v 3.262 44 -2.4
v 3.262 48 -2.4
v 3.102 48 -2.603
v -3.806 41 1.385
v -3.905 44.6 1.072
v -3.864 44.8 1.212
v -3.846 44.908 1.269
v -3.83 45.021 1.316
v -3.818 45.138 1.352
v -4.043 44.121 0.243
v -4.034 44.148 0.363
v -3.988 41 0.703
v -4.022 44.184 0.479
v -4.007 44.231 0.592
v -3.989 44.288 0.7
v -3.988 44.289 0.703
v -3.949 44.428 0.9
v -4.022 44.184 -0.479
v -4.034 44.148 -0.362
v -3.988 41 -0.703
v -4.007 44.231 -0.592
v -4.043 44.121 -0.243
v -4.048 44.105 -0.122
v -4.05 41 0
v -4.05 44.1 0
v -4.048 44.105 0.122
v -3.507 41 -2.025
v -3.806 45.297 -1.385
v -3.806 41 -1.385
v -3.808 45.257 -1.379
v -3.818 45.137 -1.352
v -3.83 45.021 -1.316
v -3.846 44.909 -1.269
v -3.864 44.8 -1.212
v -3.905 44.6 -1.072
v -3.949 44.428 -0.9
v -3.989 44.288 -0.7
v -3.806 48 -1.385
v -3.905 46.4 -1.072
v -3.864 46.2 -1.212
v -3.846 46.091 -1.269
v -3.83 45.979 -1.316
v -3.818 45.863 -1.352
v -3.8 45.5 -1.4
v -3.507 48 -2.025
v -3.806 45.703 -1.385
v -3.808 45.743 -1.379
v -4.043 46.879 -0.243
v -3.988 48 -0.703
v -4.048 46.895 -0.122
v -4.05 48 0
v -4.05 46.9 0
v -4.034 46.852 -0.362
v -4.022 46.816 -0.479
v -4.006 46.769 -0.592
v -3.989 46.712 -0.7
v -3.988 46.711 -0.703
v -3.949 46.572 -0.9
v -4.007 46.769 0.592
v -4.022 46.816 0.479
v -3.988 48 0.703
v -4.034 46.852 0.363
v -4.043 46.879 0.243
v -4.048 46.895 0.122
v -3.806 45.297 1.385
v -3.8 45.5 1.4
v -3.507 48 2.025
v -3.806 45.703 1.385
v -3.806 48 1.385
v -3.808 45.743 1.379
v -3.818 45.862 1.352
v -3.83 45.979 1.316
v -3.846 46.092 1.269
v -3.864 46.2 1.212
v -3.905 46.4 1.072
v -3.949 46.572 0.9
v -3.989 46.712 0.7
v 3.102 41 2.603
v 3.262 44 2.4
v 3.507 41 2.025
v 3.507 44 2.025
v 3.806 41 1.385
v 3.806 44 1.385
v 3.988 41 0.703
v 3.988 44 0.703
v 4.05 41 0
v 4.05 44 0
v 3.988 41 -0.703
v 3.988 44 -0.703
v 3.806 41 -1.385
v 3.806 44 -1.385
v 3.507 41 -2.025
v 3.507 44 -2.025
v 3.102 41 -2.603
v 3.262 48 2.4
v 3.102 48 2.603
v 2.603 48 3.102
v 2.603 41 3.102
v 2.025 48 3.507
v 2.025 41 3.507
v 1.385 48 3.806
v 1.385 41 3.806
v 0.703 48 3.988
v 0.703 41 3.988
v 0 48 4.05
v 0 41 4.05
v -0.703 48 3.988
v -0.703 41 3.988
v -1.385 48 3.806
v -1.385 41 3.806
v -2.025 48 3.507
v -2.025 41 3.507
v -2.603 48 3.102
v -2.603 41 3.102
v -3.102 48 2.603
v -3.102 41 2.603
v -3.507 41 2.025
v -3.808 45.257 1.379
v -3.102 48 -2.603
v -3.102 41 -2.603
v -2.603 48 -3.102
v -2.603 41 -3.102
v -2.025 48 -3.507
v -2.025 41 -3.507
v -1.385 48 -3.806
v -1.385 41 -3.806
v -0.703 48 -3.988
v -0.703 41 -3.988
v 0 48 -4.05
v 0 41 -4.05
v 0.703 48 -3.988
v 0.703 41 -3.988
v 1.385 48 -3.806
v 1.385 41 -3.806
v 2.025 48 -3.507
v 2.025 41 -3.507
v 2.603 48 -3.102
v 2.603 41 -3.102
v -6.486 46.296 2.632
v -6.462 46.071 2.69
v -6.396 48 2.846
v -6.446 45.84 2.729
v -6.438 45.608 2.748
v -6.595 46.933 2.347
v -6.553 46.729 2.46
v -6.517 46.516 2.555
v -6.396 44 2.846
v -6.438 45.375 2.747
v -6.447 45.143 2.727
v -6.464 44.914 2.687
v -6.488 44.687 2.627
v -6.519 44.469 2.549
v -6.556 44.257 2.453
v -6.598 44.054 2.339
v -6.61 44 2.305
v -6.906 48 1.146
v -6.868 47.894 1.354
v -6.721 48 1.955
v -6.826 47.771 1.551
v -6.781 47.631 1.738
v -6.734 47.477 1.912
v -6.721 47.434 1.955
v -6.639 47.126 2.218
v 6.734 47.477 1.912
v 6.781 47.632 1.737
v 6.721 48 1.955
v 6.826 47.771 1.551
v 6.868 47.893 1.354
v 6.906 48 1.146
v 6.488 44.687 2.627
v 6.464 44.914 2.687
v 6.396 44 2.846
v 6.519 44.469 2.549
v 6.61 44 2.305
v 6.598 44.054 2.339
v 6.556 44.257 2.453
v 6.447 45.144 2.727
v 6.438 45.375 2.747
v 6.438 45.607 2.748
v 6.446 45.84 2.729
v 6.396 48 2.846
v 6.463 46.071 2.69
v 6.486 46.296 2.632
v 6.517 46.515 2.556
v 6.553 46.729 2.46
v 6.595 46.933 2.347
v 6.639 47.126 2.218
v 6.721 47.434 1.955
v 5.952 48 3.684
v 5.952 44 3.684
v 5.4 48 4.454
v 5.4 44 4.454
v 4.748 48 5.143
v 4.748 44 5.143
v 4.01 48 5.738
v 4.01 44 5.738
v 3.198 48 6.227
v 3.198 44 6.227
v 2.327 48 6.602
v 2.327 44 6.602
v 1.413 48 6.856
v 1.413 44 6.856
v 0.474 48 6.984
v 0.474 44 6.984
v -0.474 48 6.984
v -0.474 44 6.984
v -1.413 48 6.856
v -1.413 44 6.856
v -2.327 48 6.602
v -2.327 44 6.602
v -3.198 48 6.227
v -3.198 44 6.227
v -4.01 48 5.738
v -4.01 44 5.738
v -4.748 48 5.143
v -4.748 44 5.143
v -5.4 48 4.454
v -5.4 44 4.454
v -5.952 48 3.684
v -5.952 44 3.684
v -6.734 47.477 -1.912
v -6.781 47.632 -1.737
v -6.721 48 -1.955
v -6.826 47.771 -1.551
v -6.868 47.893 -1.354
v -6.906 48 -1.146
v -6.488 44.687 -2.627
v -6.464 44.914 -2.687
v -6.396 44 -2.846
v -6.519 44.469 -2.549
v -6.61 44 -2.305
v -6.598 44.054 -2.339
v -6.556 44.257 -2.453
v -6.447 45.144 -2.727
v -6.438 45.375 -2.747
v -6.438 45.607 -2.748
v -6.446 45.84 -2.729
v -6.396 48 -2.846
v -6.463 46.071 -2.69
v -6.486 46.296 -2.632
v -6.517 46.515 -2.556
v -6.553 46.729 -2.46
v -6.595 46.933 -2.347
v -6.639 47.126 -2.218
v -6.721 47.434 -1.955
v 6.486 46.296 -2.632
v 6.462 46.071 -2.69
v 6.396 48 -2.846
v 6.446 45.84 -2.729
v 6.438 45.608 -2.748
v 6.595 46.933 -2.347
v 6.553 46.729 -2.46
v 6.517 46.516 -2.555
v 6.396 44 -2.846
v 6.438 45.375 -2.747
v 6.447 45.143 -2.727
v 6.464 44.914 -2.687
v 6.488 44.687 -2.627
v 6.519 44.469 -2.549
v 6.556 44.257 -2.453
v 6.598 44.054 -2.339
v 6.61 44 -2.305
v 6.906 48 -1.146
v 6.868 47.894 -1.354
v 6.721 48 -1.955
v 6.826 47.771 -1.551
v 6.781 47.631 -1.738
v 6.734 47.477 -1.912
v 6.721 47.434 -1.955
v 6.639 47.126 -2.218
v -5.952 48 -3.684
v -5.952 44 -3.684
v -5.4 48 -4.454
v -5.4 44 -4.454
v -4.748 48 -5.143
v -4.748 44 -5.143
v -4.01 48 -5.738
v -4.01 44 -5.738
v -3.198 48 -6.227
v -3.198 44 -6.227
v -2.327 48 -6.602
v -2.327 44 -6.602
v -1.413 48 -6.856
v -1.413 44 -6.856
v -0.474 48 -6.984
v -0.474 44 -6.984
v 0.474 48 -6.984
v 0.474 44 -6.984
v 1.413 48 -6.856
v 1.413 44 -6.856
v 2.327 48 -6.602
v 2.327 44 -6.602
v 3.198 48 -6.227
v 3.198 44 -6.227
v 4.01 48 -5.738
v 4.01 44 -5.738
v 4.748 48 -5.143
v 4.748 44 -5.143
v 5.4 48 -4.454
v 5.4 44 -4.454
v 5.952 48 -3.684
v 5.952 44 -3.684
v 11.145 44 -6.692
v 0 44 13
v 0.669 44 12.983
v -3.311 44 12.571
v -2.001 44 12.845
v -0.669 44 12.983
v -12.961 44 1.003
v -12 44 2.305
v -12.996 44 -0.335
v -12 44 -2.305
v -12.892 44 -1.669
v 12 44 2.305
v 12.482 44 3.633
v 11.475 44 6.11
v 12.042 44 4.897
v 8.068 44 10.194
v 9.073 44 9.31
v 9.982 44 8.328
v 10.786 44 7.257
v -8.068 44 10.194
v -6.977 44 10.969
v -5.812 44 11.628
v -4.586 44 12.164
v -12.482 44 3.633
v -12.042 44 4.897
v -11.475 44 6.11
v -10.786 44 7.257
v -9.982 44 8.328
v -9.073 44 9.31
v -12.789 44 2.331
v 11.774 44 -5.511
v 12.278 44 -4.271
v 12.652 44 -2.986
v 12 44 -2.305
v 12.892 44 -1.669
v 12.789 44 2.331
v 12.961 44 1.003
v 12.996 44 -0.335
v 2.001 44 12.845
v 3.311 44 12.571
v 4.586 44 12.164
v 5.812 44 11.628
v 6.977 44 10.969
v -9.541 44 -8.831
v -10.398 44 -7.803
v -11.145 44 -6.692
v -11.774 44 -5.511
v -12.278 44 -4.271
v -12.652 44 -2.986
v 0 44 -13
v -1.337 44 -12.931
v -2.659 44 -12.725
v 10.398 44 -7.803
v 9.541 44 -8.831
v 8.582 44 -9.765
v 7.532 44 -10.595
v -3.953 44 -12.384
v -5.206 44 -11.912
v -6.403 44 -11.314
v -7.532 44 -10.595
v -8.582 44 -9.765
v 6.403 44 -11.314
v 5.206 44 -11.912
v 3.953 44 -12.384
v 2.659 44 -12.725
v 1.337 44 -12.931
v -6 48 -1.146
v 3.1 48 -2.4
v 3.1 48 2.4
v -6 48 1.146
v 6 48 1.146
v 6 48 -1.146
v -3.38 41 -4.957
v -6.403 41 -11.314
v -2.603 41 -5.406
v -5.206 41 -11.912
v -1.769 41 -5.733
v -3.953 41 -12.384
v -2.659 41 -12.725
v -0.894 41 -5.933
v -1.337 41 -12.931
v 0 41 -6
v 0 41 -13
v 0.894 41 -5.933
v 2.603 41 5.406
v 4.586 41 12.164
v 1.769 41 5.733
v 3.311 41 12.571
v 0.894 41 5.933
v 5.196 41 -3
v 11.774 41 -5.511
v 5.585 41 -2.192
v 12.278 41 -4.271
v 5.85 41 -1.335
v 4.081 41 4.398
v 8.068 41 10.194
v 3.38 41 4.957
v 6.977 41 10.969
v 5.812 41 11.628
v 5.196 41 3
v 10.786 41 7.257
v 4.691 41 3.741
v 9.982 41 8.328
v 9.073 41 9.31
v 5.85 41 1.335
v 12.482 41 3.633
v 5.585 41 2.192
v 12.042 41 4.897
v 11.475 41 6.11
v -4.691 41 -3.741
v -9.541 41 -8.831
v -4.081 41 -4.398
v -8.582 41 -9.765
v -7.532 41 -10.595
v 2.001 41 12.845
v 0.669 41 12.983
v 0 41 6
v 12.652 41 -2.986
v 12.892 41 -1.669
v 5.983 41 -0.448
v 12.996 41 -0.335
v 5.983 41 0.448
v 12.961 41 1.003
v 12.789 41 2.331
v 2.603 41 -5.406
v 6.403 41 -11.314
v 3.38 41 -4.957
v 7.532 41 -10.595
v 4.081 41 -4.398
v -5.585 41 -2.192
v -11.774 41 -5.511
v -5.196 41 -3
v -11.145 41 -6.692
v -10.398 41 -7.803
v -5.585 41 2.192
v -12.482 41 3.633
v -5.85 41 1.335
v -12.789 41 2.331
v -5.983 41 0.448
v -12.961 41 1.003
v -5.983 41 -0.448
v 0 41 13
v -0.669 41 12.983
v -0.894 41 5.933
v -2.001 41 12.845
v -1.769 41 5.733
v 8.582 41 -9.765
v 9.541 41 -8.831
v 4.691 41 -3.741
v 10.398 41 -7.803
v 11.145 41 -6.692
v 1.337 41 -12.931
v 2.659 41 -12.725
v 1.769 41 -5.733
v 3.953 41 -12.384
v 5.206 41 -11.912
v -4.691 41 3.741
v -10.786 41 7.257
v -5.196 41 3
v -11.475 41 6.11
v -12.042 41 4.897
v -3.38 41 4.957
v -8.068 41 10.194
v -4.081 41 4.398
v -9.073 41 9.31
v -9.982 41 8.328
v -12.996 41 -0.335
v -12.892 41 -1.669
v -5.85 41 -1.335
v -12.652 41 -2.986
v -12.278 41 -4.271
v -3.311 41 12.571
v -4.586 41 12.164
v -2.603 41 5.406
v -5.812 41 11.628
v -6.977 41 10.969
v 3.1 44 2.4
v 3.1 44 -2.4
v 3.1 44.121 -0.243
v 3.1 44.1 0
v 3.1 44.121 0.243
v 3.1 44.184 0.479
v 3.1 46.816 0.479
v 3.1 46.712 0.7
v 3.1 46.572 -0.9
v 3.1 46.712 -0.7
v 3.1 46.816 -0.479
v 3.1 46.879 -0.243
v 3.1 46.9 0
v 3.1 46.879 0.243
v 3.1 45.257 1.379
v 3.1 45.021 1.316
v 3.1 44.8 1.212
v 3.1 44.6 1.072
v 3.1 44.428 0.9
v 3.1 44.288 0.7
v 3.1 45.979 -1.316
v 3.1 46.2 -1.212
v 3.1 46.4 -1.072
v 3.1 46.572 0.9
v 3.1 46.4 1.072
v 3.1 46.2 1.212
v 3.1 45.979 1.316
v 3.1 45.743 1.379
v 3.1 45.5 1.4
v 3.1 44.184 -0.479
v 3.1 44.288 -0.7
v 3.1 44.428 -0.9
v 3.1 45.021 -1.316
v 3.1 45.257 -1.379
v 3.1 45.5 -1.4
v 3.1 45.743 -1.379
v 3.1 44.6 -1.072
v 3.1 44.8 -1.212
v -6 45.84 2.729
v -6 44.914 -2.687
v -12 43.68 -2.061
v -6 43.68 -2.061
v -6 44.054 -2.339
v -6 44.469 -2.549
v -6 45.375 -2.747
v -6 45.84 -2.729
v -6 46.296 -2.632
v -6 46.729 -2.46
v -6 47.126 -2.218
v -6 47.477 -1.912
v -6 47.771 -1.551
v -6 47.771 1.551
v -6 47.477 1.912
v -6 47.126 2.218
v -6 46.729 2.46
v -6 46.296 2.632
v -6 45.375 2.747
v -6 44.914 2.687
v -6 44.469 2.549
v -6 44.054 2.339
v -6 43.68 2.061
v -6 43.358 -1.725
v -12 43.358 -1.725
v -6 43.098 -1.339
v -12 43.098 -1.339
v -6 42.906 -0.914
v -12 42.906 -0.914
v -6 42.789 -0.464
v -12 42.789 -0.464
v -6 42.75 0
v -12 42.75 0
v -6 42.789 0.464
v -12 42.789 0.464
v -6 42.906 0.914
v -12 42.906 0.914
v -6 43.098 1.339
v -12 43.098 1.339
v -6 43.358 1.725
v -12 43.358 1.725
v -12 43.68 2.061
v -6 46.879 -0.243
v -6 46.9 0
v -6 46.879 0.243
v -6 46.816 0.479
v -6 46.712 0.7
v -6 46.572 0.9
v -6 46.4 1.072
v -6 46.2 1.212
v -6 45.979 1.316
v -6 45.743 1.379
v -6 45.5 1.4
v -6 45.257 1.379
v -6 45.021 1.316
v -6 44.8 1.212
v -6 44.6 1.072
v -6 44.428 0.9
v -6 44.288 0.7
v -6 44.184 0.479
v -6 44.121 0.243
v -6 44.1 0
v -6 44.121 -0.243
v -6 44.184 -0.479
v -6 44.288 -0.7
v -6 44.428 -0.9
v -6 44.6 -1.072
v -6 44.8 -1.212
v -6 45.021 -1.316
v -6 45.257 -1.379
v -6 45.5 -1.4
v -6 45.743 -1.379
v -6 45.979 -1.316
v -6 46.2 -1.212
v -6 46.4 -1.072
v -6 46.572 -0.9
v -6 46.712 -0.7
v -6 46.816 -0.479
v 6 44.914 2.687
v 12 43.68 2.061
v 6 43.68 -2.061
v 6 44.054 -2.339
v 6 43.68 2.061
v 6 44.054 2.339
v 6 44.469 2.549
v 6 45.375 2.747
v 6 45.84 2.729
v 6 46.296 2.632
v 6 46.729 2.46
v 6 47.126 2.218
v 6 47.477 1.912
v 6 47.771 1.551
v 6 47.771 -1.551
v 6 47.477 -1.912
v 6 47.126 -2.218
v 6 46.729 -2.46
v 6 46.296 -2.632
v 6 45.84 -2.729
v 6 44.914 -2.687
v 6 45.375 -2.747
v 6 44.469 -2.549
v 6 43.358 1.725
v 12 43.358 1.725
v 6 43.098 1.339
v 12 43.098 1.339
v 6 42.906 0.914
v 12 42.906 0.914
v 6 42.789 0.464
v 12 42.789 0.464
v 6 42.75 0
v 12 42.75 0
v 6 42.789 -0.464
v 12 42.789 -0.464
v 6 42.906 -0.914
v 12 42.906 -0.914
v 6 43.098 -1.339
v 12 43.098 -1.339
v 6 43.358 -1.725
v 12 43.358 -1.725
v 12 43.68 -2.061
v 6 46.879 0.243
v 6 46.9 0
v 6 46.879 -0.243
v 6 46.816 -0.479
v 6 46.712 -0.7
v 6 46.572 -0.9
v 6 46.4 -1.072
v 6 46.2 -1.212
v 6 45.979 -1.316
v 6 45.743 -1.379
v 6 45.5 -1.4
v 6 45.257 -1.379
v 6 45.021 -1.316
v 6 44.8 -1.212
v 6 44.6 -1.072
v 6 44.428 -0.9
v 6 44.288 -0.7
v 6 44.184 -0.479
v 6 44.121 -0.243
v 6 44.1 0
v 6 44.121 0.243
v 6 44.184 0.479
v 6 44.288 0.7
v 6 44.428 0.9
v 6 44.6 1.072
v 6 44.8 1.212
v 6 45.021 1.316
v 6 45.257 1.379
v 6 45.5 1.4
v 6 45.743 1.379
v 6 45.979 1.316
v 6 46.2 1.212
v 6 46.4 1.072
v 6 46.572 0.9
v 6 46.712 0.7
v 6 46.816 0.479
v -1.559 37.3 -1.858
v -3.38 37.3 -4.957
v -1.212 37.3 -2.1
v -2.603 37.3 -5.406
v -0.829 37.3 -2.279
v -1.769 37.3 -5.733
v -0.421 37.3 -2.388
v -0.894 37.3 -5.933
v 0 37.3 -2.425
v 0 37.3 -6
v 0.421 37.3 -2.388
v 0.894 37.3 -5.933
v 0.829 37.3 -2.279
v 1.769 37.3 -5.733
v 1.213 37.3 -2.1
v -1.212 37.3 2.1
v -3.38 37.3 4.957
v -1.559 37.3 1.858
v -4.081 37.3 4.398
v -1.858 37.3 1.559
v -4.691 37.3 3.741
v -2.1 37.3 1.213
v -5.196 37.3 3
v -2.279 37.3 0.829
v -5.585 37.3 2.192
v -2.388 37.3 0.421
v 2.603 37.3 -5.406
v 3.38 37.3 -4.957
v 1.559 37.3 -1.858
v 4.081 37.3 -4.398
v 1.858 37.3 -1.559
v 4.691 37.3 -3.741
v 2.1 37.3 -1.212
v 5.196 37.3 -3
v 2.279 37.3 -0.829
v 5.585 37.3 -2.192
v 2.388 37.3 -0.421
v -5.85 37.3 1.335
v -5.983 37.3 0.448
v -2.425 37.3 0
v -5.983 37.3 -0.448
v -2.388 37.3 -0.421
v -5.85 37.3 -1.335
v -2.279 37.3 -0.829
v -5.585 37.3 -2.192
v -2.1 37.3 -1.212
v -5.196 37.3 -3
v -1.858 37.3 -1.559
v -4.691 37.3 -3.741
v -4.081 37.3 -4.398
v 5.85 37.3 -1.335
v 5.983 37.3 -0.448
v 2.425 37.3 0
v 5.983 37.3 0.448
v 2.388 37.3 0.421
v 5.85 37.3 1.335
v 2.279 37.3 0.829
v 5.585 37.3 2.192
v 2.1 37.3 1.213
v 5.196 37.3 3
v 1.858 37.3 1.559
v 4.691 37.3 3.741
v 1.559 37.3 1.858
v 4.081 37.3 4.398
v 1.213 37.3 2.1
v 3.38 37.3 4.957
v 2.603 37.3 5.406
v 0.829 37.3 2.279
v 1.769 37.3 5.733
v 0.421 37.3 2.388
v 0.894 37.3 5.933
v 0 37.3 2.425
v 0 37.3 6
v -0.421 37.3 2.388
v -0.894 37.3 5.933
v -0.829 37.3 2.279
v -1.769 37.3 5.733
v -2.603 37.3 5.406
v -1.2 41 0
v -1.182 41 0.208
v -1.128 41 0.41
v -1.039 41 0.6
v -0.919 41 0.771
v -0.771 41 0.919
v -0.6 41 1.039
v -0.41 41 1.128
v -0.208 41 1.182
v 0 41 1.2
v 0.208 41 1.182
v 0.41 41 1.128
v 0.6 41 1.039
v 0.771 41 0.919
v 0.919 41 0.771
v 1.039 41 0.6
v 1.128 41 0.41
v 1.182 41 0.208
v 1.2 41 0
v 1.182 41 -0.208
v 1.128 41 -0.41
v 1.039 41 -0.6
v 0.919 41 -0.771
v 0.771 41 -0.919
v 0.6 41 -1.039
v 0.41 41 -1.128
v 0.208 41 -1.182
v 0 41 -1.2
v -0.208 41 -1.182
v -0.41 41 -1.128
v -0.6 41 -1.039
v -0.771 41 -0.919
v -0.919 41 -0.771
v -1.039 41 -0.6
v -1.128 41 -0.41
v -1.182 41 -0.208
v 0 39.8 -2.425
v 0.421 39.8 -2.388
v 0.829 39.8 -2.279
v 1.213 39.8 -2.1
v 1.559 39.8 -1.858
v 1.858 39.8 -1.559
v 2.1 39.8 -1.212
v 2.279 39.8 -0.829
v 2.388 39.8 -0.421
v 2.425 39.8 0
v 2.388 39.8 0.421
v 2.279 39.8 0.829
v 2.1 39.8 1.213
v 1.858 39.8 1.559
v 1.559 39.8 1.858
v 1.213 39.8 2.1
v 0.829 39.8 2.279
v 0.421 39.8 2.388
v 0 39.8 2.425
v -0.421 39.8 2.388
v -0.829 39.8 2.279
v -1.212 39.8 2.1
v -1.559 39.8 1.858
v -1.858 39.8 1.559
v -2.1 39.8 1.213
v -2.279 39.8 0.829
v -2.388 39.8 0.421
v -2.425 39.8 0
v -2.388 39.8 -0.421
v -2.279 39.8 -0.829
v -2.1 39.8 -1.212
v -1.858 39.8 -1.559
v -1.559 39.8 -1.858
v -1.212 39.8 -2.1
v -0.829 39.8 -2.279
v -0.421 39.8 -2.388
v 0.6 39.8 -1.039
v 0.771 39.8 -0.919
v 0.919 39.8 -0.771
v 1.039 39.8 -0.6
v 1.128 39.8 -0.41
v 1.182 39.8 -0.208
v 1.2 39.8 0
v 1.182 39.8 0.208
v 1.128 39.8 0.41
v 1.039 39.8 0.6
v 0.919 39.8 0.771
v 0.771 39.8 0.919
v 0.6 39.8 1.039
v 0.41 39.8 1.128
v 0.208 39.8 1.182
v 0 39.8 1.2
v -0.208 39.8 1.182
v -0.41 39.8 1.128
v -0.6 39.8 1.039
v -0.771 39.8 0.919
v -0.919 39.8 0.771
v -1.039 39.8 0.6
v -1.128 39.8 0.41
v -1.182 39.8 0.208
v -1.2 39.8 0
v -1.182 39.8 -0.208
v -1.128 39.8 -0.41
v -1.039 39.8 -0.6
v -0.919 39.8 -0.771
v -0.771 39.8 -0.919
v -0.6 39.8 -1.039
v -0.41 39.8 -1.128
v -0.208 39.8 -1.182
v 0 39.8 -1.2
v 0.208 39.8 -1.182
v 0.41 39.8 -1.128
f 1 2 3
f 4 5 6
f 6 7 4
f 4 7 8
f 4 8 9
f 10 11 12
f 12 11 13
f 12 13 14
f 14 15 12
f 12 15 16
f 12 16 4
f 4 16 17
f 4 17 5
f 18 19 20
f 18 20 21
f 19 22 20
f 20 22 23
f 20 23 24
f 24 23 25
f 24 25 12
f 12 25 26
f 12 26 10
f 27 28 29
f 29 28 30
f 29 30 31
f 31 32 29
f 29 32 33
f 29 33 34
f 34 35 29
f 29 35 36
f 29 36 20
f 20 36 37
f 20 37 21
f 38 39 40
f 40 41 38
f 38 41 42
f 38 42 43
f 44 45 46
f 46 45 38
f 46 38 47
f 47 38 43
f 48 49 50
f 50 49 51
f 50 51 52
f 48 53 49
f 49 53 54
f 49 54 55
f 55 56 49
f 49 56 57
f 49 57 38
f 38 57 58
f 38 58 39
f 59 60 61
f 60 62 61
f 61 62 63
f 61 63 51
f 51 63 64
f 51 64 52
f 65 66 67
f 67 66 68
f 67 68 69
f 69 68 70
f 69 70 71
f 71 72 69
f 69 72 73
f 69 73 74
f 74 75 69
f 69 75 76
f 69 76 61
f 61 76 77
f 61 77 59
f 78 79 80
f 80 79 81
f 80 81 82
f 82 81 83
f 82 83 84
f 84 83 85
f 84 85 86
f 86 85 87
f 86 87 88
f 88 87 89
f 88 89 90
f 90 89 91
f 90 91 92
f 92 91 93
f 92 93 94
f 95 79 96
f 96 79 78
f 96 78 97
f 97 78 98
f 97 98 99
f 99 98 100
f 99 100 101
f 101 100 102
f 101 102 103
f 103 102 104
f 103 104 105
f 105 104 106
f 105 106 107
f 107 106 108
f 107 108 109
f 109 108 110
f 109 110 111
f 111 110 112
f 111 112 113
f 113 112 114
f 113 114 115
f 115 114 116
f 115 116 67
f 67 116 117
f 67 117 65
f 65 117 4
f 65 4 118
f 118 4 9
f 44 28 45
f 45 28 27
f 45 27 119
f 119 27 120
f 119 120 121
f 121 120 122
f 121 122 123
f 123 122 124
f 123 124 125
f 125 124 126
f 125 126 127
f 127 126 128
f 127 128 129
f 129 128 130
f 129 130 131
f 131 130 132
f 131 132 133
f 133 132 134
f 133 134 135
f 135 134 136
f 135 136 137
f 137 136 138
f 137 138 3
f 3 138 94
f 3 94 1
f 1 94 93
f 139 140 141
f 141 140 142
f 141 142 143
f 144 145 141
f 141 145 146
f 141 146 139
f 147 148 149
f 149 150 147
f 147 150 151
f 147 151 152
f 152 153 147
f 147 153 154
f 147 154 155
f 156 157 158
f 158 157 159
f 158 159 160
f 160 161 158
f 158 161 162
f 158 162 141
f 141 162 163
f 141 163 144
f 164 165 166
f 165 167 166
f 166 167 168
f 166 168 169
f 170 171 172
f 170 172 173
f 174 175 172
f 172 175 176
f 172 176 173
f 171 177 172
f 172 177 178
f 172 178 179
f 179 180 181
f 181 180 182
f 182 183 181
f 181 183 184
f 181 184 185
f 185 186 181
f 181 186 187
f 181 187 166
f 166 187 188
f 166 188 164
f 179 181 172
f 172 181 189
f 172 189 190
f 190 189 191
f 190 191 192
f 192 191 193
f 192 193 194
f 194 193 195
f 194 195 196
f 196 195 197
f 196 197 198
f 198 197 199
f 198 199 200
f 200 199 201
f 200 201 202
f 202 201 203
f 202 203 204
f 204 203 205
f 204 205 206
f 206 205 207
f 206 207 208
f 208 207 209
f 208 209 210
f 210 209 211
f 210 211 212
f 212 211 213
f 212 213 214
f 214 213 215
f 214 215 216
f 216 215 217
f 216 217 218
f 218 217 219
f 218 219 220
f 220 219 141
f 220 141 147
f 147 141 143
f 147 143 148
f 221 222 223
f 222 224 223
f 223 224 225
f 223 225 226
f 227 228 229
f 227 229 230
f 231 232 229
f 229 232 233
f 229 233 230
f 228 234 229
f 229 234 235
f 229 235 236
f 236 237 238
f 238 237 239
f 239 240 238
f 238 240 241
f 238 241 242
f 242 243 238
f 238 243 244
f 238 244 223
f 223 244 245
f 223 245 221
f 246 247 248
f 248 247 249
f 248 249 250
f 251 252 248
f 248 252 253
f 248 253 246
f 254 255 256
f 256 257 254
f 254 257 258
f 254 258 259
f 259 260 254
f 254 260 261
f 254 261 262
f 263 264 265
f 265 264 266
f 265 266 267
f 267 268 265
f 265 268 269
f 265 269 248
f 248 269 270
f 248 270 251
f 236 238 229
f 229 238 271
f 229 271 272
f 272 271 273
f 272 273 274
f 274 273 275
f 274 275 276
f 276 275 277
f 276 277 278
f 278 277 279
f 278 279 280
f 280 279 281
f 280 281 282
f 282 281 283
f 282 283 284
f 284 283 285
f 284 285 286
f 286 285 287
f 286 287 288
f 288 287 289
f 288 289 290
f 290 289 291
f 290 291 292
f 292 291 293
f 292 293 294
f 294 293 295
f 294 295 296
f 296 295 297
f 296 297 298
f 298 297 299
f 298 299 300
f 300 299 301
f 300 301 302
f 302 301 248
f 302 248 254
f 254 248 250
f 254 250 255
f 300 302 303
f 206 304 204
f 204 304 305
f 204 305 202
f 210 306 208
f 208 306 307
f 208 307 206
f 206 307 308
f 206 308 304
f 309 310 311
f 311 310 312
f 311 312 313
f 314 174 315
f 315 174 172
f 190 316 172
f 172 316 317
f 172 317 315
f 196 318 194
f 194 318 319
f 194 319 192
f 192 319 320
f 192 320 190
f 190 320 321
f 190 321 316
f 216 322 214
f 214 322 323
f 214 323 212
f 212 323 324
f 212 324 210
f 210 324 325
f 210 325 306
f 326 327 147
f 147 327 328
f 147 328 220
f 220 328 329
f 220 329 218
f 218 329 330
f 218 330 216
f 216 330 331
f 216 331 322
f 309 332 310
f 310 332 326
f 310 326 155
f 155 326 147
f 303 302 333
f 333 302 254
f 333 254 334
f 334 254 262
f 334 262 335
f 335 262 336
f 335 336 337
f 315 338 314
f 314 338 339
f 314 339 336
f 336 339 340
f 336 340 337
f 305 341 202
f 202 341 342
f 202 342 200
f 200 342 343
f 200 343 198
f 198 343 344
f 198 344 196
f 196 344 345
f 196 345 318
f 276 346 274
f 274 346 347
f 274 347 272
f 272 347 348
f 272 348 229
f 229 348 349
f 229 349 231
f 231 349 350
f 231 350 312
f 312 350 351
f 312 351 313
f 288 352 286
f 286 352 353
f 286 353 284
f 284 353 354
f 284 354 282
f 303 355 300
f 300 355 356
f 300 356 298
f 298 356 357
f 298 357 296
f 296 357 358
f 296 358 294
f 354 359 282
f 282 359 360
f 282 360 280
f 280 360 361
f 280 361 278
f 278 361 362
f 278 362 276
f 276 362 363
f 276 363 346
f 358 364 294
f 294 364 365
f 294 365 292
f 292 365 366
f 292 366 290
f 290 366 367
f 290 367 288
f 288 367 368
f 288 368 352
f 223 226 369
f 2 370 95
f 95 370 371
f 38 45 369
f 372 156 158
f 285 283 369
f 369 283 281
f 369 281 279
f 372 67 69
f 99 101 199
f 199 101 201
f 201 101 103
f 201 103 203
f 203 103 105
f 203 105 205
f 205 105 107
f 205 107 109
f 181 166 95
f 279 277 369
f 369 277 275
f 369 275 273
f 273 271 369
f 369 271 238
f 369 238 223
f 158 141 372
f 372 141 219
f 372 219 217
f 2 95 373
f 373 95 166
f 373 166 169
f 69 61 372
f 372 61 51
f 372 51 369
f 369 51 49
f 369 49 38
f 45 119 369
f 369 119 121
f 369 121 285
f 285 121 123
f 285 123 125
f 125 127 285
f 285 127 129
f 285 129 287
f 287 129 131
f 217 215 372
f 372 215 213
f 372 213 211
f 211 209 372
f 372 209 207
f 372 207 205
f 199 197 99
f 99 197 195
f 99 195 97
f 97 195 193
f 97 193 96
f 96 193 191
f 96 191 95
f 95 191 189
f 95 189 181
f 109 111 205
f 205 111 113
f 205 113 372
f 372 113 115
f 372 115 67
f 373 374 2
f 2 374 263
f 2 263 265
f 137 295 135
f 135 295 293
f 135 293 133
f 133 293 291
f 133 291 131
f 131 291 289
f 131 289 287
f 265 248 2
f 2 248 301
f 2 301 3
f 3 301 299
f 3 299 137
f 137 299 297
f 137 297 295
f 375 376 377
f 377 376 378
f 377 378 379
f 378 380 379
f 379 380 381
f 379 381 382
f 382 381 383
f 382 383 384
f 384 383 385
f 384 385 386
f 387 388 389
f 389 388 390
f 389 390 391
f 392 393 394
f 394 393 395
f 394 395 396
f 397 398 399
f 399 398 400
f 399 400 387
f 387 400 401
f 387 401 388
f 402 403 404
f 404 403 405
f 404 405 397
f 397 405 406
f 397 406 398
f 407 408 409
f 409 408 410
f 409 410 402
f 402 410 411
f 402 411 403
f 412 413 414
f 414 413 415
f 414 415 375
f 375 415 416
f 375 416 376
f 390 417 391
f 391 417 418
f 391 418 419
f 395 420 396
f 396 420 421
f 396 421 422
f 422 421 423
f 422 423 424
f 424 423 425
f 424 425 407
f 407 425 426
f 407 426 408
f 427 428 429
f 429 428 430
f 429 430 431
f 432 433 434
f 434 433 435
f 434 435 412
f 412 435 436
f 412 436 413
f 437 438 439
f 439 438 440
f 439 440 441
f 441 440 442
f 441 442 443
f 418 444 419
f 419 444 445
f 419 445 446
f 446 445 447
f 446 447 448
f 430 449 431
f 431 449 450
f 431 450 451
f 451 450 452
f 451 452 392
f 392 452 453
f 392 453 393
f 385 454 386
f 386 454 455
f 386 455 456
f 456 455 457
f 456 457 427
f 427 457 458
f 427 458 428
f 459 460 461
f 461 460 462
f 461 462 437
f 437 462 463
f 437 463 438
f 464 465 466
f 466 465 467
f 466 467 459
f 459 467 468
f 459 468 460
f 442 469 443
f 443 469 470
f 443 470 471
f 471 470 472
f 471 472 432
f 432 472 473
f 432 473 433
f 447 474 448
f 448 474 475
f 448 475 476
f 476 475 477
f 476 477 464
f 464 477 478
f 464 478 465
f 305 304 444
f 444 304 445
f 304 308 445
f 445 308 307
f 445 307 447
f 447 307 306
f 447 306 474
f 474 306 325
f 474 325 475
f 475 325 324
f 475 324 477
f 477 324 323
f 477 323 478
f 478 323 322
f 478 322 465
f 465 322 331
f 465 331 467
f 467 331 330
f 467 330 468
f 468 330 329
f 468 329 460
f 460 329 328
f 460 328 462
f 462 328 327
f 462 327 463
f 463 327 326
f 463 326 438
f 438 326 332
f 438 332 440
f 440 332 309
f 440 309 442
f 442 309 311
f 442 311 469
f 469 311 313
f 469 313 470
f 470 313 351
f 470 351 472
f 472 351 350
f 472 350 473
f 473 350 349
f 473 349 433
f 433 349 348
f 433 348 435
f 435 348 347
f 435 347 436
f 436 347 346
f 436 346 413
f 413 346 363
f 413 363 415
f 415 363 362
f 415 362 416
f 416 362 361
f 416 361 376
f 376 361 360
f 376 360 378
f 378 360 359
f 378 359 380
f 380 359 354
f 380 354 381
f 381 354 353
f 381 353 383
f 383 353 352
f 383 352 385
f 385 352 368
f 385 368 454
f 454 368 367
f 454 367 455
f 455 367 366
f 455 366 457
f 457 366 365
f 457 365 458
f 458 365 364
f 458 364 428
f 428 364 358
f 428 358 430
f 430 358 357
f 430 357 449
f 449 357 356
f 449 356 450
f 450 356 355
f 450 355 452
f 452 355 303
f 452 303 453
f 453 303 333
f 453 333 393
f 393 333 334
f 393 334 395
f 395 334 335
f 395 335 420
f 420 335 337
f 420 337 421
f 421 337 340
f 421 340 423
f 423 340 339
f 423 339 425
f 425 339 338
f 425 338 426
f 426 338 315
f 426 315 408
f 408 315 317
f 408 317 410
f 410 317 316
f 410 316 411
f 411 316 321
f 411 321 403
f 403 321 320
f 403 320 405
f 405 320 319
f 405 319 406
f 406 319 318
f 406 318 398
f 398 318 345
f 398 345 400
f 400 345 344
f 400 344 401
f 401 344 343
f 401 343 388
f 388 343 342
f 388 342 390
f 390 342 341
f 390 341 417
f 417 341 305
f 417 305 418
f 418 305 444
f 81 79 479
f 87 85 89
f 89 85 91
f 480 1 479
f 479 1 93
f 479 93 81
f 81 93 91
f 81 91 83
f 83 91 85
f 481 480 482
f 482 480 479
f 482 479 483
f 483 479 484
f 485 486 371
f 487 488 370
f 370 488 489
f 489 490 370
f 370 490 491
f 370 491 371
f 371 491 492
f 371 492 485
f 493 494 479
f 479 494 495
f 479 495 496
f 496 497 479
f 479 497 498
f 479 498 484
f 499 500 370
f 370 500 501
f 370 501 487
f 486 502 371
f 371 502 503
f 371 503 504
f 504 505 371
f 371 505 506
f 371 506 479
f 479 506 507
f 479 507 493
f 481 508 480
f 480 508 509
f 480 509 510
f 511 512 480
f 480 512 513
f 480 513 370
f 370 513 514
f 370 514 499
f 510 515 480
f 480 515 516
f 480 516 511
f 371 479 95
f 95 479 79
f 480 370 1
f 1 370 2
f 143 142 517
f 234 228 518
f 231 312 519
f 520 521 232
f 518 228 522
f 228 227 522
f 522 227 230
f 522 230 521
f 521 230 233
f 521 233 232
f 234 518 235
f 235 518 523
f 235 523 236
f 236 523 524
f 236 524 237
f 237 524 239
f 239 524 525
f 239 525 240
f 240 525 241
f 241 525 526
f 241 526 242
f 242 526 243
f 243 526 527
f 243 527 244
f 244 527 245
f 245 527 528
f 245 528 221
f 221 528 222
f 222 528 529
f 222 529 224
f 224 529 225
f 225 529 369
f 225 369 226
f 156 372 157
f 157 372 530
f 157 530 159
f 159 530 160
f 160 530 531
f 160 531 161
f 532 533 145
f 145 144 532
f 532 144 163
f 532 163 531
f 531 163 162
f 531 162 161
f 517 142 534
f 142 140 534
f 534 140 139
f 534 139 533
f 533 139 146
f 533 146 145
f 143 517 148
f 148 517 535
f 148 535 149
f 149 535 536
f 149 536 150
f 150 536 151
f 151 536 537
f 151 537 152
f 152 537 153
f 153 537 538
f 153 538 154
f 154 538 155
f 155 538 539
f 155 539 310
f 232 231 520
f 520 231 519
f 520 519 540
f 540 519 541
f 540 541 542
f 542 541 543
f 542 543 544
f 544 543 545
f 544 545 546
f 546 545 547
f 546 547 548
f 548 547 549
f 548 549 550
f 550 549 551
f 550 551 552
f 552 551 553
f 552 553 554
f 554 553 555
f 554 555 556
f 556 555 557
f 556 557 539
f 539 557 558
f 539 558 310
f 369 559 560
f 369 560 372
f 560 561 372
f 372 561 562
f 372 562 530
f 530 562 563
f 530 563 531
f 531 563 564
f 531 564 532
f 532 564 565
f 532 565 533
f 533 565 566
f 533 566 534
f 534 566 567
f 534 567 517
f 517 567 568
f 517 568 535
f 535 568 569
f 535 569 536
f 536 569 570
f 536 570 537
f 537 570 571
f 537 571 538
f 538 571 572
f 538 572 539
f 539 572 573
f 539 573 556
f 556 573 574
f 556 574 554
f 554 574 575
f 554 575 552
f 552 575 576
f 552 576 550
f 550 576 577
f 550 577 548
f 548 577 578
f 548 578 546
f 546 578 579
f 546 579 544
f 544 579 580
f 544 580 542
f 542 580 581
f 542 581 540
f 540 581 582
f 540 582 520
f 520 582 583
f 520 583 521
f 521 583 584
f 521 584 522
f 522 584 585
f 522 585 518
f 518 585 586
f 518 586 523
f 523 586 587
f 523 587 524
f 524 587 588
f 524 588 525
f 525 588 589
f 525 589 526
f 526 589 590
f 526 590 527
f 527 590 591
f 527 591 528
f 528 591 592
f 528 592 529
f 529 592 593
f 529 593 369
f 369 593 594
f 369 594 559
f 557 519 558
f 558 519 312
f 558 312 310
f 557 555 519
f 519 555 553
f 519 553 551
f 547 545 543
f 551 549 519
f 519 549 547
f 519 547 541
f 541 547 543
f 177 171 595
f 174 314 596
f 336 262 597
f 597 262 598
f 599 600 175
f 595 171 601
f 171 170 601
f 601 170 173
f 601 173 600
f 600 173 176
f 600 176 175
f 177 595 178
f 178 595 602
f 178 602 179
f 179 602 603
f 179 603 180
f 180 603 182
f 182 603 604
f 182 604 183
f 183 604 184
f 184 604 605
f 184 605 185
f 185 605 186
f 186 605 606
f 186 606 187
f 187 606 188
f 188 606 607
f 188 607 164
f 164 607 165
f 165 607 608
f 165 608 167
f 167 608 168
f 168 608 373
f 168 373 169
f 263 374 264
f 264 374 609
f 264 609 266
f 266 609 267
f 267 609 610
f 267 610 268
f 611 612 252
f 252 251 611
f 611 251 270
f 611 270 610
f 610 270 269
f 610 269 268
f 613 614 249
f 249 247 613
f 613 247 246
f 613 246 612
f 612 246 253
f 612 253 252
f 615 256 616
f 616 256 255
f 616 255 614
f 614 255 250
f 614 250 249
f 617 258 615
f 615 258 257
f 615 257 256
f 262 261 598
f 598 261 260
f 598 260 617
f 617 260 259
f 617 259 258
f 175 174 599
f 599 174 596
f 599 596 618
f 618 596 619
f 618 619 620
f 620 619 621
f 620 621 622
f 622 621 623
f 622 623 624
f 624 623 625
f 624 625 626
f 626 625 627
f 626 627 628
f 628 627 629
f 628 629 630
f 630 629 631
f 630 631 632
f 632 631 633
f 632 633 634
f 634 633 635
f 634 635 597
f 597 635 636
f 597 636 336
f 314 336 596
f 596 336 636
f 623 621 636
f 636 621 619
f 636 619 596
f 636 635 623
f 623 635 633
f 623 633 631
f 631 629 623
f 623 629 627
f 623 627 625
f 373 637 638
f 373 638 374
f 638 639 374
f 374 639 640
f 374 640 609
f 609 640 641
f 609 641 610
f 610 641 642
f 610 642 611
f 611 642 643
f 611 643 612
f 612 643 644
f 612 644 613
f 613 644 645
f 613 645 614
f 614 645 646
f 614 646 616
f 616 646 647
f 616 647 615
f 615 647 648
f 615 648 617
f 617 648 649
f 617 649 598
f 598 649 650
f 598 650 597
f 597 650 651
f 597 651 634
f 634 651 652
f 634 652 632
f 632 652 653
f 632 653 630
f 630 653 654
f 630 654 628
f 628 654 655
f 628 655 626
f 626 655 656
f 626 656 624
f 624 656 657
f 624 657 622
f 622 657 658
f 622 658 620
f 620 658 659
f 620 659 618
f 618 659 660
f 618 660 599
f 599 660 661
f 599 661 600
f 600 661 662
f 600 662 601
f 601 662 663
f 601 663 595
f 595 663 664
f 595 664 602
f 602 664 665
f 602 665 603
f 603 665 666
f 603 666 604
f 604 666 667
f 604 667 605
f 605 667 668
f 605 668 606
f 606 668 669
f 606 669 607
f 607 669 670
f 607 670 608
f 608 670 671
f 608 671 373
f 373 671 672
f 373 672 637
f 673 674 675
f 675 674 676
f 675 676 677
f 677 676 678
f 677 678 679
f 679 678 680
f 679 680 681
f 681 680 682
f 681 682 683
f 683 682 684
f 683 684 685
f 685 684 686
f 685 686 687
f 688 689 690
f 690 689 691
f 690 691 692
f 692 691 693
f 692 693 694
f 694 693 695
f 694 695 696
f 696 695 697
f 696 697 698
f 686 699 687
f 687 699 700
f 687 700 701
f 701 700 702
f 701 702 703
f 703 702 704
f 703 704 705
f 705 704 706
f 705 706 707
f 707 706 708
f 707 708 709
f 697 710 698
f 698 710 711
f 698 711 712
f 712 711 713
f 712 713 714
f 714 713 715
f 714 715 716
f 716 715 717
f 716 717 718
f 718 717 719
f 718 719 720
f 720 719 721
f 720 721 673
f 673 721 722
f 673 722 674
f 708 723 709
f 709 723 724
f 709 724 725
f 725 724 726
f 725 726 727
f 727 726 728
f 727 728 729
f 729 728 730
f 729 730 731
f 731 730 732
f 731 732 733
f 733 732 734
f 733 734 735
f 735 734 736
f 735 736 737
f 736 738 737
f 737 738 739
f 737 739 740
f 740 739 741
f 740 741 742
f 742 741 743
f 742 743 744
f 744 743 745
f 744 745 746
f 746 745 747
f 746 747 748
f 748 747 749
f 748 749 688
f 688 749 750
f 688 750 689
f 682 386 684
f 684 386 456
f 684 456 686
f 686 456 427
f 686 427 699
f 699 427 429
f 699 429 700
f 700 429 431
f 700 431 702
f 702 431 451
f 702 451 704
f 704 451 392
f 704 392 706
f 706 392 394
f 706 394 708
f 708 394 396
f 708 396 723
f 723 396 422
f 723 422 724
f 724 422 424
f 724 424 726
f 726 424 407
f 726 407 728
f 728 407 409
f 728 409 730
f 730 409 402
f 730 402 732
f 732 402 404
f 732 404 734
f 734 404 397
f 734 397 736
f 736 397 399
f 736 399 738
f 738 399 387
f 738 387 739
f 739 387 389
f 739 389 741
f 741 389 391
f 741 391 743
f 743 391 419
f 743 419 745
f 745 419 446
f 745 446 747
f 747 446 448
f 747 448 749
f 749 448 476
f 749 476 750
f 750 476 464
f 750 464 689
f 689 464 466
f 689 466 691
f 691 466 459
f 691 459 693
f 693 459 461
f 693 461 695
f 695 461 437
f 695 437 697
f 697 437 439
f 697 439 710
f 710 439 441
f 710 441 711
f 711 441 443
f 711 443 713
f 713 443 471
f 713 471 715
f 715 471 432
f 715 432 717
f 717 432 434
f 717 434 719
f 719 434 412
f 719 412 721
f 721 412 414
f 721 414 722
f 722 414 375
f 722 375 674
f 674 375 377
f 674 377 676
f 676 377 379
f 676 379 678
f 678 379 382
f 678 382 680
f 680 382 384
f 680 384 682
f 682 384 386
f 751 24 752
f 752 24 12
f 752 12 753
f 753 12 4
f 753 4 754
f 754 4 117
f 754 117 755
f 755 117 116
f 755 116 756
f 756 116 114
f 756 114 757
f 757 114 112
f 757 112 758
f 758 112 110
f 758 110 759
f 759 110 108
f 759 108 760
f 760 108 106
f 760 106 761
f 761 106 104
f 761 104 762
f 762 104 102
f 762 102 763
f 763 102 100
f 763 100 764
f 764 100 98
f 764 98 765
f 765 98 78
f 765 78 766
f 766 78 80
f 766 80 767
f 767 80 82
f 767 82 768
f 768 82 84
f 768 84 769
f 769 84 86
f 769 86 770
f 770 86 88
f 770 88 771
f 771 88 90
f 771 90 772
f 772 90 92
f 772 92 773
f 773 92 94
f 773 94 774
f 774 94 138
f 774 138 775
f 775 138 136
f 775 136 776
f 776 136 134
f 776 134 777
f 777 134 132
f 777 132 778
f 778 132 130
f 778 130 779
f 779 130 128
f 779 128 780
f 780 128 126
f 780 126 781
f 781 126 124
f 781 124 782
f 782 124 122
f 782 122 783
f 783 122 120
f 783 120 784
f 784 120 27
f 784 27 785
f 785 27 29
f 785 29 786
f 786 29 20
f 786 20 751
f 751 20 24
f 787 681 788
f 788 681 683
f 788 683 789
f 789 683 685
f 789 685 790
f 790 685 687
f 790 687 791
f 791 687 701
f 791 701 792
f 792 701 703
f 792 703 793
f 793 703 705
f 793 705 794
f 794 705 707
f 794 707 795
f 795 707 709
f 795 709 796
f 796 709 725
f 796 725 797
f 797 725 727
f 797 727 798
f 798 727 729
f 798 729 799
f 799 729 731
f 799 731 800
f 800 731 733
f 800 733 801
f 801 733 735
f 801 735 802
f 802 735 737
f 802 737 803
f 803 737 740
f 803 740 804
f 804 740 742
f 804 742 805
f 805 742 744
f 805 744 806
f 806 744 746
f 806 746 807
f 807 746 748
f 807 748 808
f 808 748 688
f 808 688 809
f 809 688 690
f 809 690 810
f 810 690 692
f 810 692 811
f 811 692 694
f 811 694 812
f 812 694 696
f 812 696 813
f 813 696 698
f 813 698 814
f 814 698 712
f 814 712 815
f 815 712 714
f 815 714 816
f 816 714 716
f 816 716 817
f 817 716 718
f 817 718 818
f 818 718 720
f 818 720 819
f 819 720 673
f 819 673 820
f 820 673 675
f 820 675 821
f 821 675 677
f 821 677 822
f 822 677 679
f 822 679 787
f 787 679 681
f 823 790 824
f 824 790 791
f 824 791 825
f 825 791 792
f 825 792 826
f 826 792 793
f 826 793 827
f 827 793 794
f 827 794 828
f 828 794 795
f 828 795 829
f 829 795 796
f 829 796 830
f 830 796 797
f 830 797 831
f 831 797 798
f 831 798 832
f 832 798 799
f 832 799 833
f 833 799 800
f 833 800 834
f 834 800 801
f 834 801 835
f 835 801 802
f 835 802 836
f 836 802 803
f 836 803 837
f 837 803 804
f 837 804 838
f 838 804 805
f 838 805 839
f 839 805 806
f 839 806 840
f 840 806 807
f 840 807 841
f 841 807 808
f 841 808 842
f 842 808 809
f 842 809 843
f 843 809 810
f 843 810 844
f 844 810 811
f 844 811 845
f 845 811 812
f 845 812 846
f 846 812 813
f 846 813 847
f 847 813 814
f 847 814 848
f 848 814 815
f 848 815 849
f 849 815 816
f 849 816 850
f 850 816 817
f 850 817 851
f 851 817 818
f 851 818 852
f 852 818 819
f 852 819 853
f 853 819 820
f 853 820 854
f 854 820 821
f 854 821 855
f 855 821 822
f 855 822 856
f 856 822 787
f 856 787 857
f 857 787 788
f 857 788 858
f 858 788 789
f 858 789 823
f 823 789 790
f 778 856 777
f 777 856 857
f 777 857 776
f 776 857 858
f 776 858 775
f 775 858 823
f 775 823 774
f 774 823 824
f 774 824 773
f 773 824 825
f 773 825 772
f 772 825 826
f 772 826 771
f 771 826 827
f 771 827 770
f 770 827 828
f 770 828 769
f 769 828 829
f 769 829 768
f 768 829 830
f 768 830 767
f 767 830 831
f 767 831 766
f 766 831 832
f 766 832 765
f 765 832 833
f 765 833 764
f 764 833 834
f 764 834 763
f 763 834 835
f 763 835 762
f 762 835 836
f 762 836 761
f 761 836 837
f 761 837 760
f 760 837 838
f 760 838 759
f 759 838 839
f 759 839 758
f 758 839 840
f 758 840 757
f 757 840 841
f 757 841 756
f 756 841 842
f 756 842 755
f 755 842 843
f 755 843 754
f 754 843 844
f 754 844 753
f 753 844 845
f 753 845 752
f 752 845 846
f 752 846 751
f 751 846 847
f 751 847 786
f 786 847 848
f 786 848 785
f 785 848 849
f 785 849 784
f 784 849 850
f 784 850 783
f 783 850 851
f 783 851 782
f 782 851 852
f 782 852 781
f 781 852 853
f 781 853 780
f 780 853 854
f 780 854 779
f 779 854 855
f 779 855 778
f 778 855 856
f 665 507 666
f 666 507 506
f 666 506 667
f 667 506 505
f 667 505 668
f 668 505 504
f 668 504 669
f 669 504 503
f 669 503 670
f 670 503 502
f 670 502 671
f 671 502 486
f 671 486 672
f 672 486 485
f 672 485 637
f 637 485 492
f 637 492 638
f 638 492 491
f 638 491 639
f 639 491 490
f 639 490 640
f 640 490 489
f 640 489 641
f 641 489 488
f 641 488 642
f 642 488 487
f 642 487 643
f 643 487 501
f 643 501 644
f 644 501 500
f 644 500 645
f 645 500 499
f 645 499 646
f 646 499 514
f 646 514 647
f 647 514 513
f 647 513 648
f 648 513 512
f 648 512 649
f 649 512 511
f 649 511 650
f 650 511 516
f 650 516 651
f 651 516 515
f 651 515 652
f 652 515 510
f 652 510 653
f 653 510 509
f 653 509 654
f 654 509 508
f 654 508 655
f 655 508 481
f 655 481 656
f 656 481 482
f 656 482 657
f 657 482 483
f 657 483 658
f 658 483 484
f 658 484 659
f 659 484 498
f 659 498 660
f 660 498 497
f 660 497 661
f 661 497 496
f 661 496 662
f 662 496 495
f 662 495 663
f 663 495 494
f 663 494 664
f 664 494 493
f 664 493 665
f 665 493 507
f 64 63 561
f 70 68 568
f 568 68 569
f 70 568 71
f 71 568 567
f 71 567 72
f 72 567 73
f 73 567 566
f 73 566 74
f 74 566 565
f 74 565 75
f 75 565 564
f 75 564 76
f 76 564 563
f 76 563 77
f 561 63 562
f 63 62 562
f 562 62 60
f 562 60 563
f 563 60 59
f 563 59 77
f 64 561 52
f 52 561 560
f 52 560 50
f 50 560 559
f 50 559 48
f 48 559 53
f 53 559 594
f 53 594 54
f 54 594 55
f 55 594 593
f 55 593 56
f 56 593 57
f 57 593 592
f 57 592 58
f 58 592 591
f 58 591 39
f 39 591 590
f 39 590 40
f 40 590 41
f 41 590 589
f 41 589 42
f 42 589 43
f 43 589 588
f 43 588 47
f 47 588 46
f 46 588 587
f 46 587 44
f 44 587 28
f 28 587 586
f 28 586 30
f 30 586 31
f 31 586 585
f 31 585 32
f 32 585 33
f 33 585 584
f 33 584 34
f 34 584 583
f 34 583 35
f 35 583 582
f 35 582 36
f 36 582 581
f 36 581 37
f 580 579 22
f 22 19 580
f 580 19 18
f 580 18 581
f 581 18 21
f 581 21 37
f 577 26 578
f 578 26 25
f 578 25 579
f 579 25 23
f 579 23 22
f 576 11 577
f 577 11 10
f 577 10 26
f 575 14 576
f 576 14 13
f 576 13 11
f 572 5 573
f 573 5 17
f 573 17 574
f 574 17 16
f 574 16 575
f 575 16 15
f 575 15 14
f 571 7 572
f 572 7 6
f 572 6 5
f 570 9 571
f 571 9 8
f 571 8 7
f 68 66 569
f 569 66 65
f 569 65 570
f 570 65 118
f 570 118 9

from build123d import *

# Parameters (mm, degrees)
STOCK_HORN_DRIVE_FLANGE_START                 = 41
STOCK_HORN_DRIVE_FLANGE_PROFILE_R             = 13
STOCK_HORN_DRIVE_FLANGE_PROFILE_R_2           = 4.05
STOCK_HORN_DRIVE_FLANGE_DEPTH                 = 3
D_COUPLING_RING_START                         = 44
D_COUPLING_RING_PROFILE_R                     = 7
D_COUPLING_RING_PROFILE_R_2                   = 4.05
D_COUPLING_RING_DEPTH                         = 4
D_KEY_LAND_START                              = 44
D_KEY_LAND_PROFILE_W                          = 2.9
D_KEY_LAND_PROFILE_H                          = 4.8
D_KEY_LAND_DEPTH                              = 4
YAW_POSITIVE_RETENTION_CROSSBOLT_START        = -10
YAW_POSITIVE_RETENTION_CROSSBOLT_PROFILE_R    = 1.1
YAW_POSITIVE_RETENTION_CROSSBOLT_DEPTH        = 62.400389104
CROSSBOLT_FLAT_SEAT_CUT_12_START              = -12
CROSSBOLT_FLAT_SEAT_12_R                      = 2.75
CROSSBOLT_FLAT_SEAT_CUT_12_DEPTH              = 6
CROSSBOLT_FLAT_SEAT_CUT_6_START               = 6
CROSSBOLT_FLAT_SEAT_6_R                       = 2.75
CROSSBOLT_FLAT_SEAT_CUT_6_DEPTH               = 6
SG90_SPLINE_SOCKET_BOSS_OD12_START            = 37.3
SG90_SPLINE_SOCKET_BOSS_PROFILE_R             = 6
SG90_SPLINE_SOCKET_BOSS_OD12_DEPTH            = 3.7
SG90_SPLINE_PRESS_SOCKET_D4P85_DEPTH2P5_START = 37.3
SG90_SPLINE_PRESS_SOCKET_D4P85_DEPTH_2_R      = 2.425
SG90_SPLINE_PRESS_SOCKET_D4P85_DEPTH2P5_DEPTH = 2.5
SG90_CENTRE_SCREW_CLEARANCE_D2P4_START        = 39.8
SG90_CENTRE_SCREW_CLEARANCE_D2P4_PROFILE_R    = 1.2
SG90_CENTRE_SCREW_CLEARANCE_D2P4_DEPTH        = 1.2
CROSSBOLT_AXIAL_FLOAT_CLEARANCE_D2P8_START    = -10
CROSSBOLT_AXIAL_FLOAT_CLEARANCE_D2P8_PRO_R    = 1.4
CROSSBOLT_AXIAL_FLOAT_CLEARANCE_D2P8_DEPTH    = 62.400389197


with BuildPart() as part:
    # Stock_horn_drive_flange_profile → Stock_horn_drive_flange (new body)
    with BuildSketch(Plane(origin=(0, 0, 0), x_dir=(1, 0, 0), z_dir=(0, 1, 0)).offset(STOCK_HORN_DRIVE_FLANGE_START)):
        with Locations(Location((0, 0, 0), (0, 0, 270))):
            Circle(STOCK_HORN_DRIVE_FLANGE_PROFILE_R)
        with Locations(Location((0, 0, 0), (0, 0, 270))):
            Circle(STOCK_HORN_DRIVE_FLANGE_PROFILE_R_2, mode=Mode.SUBTRACT)
    extrude(amount=STOCK_HORN_DRIVE_FLANGE_DEPTH)

    # D_coupling_ring_profile → D_coupling_ring (add)
    with BuildSketch(Plane(origin=(0, 0, 0), x_dir=(1, 0, 0), z_dir=(0, 1, 0)).offset(D_COUPLING_RING_START)):
        with Locations(Location((0, 0, 0), (0, 0, 270))):
            Circle(D_COUPLING_RING_PROFILE_R)
        with Locations(Location((0, 0, 0), (0, 0, 270))):
            Circle(D_COUPLING_RING_PROFILE_R_2, mode=Mode.SUBTRACT)
    extrude(amount=D_COUPLING_RING_DEPTH)

    # D_key_land_profile → D_key_land (add)
    with BuildSketch(Plane(origin=(0, 0, 0), x_dir=(1, 0, 0), z_dir=(0, 1, 0)).offset(D_KEY_LAND_START)):
        with Locations((4.55, 0)):
            Rectangle(D_KEY_LAND_PROFILE_W, D_KEY_LAND_PROFILE_H)
    extrude(amount=D_KEY_LAND_DEPTH)

    # Yaw_positive_retention_crossbolt_profile → Yaw_positive_retention_crossbolt (cut, through all)
    with BuildSketch(Plane(origin=(0, 0, 0), x_dir=(0, 0, -1), z_dir=(1, 0, 0)).offset(YAW_POSITIVE_RETENTION_CROSSBOLT_START)):
        with Locations(Location((0, 45.5, 0), (0, 0, 180))):
            Circle(YAW_POSITIVE_RETENTION_CROSSBOLT_PROFILE_R)
    extrude(amount=YAW_POSITIVE_RETENTION_CROSSBOLT_DEPTH, mode=Mode.SUBTRACT)

    # Crossbolt_flat_seat_-12 → Crossbolt_flat_seat_cut_-12 (cut)
    with BuildSketch(Plane(origin=(0, 0, 0), x_dir=(0, 0, -1), z_dir=(1, 0, 0)).offset(CROSSBOLT_FLAT_SEAT_CUT_12_START)):
        with Locations((0, 45.5)):
            Circle(CROSSBOLT_FLAT_SEAT_12_R)
    extrude(amount=CROSSBOLT_FLAT_SEAT_CUT_12_DEPTH, mode=Mode.SUBTRACT)

    # Crossbolt_flat_seat_6 → Crossbolt_flat_seat_cut_6 (cut)
    with BuildSketch(Plane(origin=(0, 0, 0), x_dir=(0, 0, -1), z_dir=(1, 0, 0)).offset(CROSSBOLT_FLAT_SEAT_CUT_6_START)):
        with Locations((0, 45.5)):
            Circle(CROSSBOLT_FLAT_SEAT_6_R)
    extrude(amount=CROSSBOLT_FLAT_SEAT_CUT_6_DEPTH, mode=Mode.SUBTRACT)

    # SG90_spline_socket_boss_profile → SG90_spline_socket_boss_OD12 (add)
    with BuildSketch(Plane(origin=(0, 0, 0), x_dir=(1, 0, 0), z_dir=(0, 1, 0)).offset(SG90_SPLINE_SOCKET_BOSS_OD12_START)):
        with Locations(Location((0, 0, 0), (0, 0, 270))):
            Circle(SG90_SPLINE_SOCKET_BOSS_PROFILE_R)
    extrude(amount=SG90_SPLINE_SOCKET_BOSS_OD12_DEPTH)

    # SG90_spline_press_socket_D4p85_depth 2 → SG90_spline_press_socket_D4p85_depth2p5 (cut)
    with BuildSketch(Plane(origin=(0, 0, 0), x_dir=(1, 0, 0), z_dir=(0, 1, 0)).offset(SG90_SPLINE_PRESS_SOCKET_D4P85_DEPTH2P5_START)):
        with Locations(Location((0, 0, 0), (0, 0, 270))):
            Circle(SG90_SPLINE_PRESS_SOCKET_D4P85_DEPTH_2_R)
    extrude(amount=SG90_SPLINE_PRESS_SOCKET_D4P85_DEPTH2P5_DEPTH, mode=Mode.SUBTRACT)

    # SG90_centre_screw_clearance_D2p4_profile → SG90_centre_screw_clearance_D2p4 (cut)
    with BuildSketch(Plane(origin=(0, 0, 0), x_dir=(1, 0, 0), z_dir=(0, 1, 0)).offset(SG90_CENTRE_SCREW_CLEARANCE_D2P4_START)):
        with Locations(Location((0, 0, 0), (0, 0, 270))):
            Circle(SG90_CENTRE_SCREW_CLEARANCE_D2P4_PROFILE_R)
    extrude(amount=SG90_CENTRE_SCREW_CLEARANCE_D2P4_DEPTH, mode=Mode.SUBTRACT)

    # Crossbolt_axial_float_clearance_D2p8_profile → Crossbolt_axial_float_clearance_D2p8 (cut, through all)
    with BuildSketch(Plane(origin=(0, 0, 0), x_dir=(0, 0, -1), z_dir=(1, 0, 0)).offset(CROSSBOLT_AXIAL_FLOAT_CLEARANCE_D2P8_START)):
        with Locations((0, 45.5)):
            Circle(CROSSBOLT_AXIAL_FLOAT_CLEARANCE_D2P8_PRO_R)
    extrude(amount=CROSSBOLT_AXIAL_FLOAT_CLEARANCE_D2P8_DEPTH, mode=Mode.SUBTRACT)


solid = part.part
